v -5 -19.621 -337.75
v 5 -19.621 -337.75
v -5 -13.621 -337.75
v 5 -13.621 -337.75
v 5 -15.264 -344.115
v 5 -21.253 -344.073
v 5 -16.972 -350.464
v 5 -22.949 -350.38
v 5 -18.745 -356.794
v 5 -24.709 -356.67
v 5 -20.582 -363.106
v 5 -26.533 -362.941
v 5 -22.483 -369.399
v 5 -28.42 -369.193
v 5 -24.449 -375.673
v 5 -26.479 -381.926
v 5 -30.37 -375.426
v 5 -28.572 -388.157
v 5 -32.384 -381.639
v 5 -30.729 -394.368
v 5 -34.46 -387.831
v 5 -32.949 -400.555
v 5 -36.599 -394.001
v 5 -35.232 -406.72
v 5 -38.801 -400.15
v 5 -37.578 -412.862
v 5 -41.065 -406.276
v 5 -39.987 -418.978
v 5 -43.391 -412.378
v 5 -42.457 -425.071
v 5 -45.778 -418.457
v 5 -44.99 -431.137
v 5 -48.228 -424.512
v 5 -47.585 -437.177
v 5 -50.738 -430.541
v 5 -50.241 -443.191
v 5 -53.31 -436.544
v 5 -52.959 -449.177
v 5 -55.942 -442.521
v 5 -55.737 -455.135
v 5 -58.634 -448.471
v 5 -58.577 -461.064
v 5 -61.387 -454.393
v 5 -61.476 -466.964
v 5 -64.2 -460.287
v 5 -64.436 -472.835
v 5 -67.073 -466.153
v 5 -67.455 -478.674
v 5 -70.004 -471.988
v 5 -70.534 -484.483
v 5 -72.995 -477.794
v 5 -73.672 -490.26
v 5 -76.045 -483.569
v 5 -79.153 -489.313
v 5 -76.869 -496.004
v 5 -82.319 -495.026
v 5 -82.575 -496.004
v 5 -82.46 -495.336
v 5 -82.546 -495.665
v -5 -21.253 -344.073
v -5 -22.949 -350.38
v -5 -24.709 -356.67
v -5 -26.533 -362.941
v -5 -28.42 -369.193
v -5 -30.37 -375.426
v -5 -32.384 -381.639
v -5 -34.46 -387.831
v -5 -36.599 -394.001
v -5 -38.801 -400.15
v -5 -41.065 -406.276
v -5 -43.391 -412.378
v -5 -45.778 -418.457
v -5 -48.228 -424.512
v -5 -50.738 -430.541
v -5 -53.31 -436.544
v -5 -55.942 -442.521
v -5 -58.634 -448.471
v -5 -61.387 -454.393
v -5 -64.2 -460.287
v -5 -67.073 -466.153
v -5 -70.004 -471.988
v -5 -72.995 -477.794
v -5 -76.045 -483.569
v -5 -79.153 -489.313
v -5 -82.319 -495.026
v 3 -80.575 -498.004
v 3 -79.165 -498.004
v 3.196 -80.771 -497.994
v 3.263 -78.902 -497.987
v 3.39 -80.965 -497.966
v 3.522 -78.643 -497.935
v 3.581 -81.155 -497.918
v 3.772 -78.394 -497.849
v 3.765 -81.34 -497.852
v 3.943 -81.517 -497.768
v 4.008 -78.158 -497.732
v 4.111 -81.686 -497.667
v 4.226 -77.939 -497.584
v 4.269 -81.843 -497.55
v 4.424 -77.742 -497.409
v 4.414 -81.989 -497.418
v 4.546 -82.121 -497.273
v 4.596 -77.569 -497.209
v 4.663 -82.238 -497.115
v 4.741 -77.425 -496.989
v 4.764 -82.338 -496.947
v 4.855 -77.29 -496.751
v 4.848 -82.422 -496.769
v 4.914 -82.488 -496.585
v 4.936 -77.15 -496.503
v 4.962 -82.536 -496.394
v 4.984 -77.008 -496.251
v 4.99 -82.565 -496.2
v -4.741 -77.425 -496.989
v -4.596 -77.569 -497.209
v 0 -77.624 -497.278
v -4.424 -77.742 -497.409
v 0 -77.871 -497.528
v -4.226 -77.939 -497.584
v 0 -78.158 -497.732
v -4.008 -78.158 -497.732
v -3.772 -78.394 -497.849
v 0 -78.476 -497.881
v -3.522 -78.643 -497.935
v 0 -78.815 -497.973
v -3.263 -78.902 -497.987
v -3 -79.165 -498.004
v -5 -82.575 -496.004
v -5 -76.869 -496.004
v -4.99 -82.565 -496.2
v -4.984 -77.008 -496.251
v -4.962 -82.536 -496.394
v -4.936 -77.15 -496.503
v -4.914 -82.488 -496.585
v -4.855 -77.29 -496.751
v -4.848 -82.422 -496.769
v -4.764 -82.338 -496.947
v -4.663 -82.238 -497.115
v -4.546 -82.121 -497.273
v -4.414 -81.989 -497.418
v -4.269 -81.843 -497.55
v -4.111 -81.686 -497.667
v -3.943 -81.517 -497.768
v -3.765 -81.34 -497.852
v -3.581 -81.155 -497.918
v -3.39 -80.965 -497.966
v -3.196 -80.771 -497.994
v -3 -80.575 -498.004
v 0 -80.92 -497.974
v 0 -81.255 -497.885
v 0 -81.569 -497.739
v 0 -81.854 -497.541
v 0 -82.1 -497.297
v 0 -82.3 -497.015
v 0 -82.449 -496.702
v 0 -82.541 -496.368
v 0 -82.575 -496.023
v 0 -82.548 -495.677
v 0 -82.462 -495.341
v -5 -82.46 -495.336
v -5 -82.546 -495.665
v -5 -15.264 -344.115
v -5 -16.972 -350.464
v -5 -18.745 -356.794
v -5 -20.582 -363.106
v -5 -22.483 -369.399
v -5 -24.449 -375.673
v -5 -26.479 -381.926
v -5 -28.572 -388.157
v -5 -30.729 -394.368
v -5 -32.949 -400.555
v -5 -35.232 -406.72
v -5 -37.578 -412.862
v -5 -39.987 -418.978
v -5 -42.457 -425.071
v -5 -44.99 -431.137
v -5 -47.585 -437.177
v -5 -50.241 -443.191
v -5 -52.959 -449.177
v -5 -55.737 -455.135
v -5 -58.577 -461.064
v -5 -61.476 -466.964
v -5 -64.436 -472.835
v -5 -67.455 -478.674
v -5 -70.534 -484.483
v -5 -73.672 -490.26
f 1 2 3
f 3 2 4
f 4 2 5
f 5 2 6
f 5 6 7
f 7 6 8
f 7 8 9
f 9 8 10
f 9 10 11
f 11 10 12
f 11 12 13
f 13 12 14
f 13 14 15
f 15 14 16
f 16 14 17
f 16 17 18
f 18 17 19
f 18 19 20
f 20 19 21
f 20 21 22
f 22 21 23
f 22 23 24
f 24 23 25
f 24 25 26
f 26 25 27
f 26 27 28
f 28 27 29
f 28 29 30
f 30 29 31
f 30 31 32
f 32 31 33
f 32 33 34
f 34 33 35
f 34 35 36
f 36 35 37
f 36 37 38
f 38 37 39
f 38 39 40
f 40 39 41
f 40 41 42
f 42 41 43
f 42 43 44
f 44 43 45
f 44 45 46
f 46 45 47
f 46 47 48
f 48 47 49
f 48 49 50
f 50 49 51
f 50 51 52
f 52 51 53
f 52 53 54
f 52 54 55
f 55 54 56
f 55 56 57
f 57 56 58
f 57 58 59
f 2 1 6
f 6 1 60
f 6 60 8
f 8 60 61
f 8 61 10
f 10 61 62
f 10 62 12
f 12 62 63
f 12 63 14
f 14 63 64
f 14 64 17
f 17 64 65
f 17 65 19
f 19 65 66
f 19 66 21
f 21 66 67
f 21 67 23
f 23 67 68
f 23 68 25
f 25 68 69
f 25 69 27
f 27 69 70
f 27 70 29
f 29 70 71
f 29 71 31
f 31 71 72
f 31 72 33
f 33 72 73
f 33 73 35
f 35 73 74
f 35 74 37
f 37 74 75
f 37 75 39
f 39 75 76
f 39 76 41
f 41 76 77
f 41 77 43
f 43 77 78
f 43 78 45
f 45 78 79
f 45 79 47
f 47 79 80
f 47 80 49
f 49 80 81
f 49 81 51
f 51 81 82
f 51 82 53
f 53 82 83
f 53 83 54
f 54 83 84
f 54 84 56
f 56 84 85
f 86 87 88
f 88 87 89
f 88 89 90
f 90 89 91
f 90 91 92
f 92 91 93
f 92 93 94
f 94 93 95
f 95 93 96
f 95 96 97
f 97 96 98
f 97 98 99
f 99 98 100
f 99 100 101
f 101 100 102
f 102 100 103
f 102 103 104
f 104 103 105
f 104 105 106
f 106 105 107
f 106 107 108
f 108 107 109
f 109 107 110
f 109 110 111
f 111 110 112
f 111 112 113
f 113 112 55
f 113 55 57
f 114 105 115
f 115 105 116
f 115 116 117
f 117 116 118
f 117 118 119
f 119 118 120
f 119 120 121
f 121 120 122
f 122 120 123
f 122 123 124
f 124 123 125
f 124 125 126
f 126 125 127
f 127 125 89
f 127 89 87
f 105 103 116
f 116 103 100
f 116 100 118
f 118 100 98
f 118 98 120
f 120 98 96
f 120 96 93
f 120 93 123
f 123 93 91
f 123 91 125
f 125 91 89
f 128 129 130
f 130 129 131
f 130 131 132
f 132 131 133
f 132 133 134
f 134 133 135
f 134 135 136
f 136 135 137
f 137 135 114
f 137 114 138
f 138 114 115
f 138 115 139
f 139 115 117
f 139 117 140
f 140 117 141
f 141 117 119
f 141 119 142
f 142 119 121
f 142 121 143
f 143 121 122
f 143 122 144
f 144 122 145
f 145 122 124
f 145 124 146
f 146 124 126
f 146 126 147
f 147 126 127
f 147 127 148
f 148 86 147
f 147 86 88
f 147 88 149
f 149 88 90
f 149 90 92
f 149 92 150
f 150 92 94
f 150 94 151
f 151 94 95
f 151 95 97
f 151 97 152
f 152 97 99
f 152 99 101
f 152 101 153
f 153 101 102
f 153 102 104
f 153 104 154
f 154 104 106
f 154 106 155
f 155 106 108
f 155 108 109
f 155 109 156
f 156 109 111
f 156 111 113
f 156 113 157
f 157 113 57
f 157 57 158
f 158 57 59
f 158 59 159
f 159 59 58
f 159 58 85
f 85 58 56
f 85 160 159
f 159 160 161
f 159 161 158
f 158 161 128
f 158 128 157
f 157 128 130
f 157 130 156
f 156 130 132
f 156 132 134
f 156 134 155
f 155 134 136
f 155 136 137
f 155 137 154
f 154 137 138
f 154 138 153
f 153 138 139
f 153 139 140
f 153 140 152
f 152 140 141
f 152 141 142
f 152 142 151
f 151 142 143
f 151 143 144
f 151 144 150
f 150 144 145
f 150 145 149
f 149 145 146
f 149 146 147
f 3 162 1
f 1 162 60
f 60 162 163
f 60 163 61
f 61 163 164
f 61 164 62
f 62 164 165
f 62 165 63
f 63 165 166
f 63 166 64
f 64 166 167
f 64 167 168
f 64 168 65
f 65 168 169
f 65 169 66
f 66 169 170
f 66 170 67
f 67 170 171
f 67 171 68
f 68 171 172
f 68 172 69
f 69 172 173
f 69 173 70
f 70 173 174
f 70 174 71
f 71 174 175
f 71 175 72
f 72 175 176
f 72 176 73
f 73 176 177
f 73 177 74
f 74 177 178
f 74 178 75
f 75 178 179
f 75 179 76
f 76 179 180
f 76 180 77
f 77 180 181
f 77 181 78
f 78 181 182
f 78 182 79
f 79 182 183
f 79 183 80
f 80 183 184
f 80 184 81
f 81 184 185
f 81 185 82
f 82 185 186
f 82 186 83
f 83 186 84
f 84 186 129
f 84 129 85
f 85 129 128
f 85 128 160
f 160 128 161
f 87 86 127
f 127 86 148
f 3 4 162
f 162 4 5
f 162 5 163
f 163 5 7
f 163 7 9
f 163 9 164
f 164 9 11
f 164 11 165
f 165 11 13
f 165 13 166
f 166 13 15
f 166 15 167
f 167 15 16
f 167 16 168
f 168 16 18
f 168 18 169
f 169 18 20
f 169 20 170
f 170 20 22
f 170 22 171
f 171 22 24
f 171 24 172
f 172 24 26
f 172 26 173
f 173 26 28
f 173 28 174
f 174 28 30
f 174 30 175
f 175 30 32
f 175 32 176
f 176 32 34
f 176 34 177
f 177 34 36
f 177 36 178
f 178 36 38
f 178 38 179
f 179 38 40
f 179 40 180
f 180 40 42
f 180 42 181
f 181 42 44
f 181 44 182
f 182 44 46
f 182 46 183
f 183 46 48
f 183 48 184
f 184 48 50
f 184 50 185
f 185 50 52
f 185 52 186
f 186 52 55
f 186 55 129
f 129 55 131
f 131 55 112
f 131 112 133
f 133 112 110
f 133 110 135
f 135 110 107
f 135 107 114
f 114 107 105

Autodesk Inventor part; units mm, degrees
ref_plane "YZ Plane" through (0, 0, 0) normal (1, 0, 0) x (0, 1, 0)
ref_plane "XZ Plane" through (0, 0, 0) normal (0, 1, 0) x (-1, 0, 0)
ref_plane "XY Plane" through (0, 0, 0) normal (0, 0, 1) x (1, 0, 0)
sketch "Sketch1" plane through (0, 0, 0) normal (0, 1, 0) x (-1, 0, 0)
  line L0 (0, 0) -> (0, -180) construction
  line L1 (5, 0) -> (5, -180)
  line L2 (-5, -180) -> (-5, 0)
  arc A0 (5, 0) -> (-5, 0) centre (0, 0) ccw
  arc A1 (-5, -180) -> (5, -180) centre (0, -180) ccw
  circle A2 centre (0, 0) radius 1.65
  line L3 (0, -40) -> (0, -140) construction
  line L4 (1.65, -40) -> (1.65, -140)
  line L5 (-1.65, -140) -> (-1.65, -40)
  arc A3 (1.65, -40) -> (-1.65, -40) centre (0, -40) ccw
  arc A4 (-1.65, -140) -> (1.65, -140) centre (0, -140) ccw
  point P0 (0, -90)
  point P1 (0, -90)
  dimension "d0" = 180
  dimension "d1" = 10
  dimension "d2" = 3.3
  dimension "d3" = 40
  dimension "d5" = 140
  dimension "d6" = 3.3
extrude "Extrusion1" add sketch "Sketch1" along normal blind 6
sketch "Sketch2" plane through (5, 0, 0) normal (1, 0, 0) x (0, 0, -1)
  line L0 (180, 0) -> (180, 6) projected
  line L1 (0, 0) -> (180, 0) projected
  line L2 (180, 0) -> (180, 6) projected
  line L3 (0, 6) -> (180, 6) projected
  line L4 (0, 0) -> (0, 6) projected
  line L5 (180, 0) -> (180, 0) projected
  line L6 (180, 0) -> (180, 6) projected
  line L7 (180, 6) -> (180, 6) projected
  line L8 (180, 0) -> (180, 6) projected
  line L9 (180, 0) -> (0, 0) projected
  arc A0 (498.004, -84) -> (180, 0) centre (180, -643.9437) ccw
  line L10 (180, 6) -> (0, 6) projected
  arc A1 (498.004, -78) -> (180, 6) centre (180, -637.9437) ccw
  line L11 (498.004, -78) -> (498.004, -84)
  line L12 (0, 0) -> (180, 0) projected
  dimension "d9" = 6
  dimension "d10" = 498.004
  dimension "d11" = 90
extrude "Extrusion2" add sketch "Sketch2" against normal blind 10 contours L0 A1 L11 A0
fillet "Fillet1" radius 2 4 edges at (0, -78, -498.004) (5, -81, -498.004) (-5, -81, -498.004) (0, -84, -498.004)
sketch "Sketch3" plane through (0, 6, 0) normal (0, 1, 0) x (1, 0, 0)
  line L0 (-25.1236, -17.4365) -> (19.1239, -17.4365)
  line L1 (19.1239, -17.4365) -> (19.1239, 173.8027)
  line L2 (19.1239, 173.8027) -> (-25.1236, 173.8027)
  line L3 (-25.1236, 173.8027) -> (-25.1236, -17.4365)
  line L4 (-48.0471, -35.7333) -> (42.457, -35.7333)
  line L5 (42.457, -35.7333) -> (42.457, 337.7497)
  line L6 (42.457, 337.7497) -> (-48.0471, 337.7497)
  line L7 (-48.0471, 337.7497) -> (-48.0471, -35.7333)
  line L8 (-102.0639, -92.3443) -> (98.6132, -92.3443)
  line L9 (98.6132, -92.3443) -> (98.6132, 617.9416)
  line L10 (98.6132, 617.9416) -> (-102.0639, 617.9416)
  line L11 (-102.0639, 617.9416) -> (-102.0639, -92.3443)
  point P0 (0, 0)
extrude "Extrusion3" cut sketch "Sketch3" against normal blind 100 contours L3 L2 L1 L0 | L7 L6 L5 L4
properties part number "Part_8_p1"
